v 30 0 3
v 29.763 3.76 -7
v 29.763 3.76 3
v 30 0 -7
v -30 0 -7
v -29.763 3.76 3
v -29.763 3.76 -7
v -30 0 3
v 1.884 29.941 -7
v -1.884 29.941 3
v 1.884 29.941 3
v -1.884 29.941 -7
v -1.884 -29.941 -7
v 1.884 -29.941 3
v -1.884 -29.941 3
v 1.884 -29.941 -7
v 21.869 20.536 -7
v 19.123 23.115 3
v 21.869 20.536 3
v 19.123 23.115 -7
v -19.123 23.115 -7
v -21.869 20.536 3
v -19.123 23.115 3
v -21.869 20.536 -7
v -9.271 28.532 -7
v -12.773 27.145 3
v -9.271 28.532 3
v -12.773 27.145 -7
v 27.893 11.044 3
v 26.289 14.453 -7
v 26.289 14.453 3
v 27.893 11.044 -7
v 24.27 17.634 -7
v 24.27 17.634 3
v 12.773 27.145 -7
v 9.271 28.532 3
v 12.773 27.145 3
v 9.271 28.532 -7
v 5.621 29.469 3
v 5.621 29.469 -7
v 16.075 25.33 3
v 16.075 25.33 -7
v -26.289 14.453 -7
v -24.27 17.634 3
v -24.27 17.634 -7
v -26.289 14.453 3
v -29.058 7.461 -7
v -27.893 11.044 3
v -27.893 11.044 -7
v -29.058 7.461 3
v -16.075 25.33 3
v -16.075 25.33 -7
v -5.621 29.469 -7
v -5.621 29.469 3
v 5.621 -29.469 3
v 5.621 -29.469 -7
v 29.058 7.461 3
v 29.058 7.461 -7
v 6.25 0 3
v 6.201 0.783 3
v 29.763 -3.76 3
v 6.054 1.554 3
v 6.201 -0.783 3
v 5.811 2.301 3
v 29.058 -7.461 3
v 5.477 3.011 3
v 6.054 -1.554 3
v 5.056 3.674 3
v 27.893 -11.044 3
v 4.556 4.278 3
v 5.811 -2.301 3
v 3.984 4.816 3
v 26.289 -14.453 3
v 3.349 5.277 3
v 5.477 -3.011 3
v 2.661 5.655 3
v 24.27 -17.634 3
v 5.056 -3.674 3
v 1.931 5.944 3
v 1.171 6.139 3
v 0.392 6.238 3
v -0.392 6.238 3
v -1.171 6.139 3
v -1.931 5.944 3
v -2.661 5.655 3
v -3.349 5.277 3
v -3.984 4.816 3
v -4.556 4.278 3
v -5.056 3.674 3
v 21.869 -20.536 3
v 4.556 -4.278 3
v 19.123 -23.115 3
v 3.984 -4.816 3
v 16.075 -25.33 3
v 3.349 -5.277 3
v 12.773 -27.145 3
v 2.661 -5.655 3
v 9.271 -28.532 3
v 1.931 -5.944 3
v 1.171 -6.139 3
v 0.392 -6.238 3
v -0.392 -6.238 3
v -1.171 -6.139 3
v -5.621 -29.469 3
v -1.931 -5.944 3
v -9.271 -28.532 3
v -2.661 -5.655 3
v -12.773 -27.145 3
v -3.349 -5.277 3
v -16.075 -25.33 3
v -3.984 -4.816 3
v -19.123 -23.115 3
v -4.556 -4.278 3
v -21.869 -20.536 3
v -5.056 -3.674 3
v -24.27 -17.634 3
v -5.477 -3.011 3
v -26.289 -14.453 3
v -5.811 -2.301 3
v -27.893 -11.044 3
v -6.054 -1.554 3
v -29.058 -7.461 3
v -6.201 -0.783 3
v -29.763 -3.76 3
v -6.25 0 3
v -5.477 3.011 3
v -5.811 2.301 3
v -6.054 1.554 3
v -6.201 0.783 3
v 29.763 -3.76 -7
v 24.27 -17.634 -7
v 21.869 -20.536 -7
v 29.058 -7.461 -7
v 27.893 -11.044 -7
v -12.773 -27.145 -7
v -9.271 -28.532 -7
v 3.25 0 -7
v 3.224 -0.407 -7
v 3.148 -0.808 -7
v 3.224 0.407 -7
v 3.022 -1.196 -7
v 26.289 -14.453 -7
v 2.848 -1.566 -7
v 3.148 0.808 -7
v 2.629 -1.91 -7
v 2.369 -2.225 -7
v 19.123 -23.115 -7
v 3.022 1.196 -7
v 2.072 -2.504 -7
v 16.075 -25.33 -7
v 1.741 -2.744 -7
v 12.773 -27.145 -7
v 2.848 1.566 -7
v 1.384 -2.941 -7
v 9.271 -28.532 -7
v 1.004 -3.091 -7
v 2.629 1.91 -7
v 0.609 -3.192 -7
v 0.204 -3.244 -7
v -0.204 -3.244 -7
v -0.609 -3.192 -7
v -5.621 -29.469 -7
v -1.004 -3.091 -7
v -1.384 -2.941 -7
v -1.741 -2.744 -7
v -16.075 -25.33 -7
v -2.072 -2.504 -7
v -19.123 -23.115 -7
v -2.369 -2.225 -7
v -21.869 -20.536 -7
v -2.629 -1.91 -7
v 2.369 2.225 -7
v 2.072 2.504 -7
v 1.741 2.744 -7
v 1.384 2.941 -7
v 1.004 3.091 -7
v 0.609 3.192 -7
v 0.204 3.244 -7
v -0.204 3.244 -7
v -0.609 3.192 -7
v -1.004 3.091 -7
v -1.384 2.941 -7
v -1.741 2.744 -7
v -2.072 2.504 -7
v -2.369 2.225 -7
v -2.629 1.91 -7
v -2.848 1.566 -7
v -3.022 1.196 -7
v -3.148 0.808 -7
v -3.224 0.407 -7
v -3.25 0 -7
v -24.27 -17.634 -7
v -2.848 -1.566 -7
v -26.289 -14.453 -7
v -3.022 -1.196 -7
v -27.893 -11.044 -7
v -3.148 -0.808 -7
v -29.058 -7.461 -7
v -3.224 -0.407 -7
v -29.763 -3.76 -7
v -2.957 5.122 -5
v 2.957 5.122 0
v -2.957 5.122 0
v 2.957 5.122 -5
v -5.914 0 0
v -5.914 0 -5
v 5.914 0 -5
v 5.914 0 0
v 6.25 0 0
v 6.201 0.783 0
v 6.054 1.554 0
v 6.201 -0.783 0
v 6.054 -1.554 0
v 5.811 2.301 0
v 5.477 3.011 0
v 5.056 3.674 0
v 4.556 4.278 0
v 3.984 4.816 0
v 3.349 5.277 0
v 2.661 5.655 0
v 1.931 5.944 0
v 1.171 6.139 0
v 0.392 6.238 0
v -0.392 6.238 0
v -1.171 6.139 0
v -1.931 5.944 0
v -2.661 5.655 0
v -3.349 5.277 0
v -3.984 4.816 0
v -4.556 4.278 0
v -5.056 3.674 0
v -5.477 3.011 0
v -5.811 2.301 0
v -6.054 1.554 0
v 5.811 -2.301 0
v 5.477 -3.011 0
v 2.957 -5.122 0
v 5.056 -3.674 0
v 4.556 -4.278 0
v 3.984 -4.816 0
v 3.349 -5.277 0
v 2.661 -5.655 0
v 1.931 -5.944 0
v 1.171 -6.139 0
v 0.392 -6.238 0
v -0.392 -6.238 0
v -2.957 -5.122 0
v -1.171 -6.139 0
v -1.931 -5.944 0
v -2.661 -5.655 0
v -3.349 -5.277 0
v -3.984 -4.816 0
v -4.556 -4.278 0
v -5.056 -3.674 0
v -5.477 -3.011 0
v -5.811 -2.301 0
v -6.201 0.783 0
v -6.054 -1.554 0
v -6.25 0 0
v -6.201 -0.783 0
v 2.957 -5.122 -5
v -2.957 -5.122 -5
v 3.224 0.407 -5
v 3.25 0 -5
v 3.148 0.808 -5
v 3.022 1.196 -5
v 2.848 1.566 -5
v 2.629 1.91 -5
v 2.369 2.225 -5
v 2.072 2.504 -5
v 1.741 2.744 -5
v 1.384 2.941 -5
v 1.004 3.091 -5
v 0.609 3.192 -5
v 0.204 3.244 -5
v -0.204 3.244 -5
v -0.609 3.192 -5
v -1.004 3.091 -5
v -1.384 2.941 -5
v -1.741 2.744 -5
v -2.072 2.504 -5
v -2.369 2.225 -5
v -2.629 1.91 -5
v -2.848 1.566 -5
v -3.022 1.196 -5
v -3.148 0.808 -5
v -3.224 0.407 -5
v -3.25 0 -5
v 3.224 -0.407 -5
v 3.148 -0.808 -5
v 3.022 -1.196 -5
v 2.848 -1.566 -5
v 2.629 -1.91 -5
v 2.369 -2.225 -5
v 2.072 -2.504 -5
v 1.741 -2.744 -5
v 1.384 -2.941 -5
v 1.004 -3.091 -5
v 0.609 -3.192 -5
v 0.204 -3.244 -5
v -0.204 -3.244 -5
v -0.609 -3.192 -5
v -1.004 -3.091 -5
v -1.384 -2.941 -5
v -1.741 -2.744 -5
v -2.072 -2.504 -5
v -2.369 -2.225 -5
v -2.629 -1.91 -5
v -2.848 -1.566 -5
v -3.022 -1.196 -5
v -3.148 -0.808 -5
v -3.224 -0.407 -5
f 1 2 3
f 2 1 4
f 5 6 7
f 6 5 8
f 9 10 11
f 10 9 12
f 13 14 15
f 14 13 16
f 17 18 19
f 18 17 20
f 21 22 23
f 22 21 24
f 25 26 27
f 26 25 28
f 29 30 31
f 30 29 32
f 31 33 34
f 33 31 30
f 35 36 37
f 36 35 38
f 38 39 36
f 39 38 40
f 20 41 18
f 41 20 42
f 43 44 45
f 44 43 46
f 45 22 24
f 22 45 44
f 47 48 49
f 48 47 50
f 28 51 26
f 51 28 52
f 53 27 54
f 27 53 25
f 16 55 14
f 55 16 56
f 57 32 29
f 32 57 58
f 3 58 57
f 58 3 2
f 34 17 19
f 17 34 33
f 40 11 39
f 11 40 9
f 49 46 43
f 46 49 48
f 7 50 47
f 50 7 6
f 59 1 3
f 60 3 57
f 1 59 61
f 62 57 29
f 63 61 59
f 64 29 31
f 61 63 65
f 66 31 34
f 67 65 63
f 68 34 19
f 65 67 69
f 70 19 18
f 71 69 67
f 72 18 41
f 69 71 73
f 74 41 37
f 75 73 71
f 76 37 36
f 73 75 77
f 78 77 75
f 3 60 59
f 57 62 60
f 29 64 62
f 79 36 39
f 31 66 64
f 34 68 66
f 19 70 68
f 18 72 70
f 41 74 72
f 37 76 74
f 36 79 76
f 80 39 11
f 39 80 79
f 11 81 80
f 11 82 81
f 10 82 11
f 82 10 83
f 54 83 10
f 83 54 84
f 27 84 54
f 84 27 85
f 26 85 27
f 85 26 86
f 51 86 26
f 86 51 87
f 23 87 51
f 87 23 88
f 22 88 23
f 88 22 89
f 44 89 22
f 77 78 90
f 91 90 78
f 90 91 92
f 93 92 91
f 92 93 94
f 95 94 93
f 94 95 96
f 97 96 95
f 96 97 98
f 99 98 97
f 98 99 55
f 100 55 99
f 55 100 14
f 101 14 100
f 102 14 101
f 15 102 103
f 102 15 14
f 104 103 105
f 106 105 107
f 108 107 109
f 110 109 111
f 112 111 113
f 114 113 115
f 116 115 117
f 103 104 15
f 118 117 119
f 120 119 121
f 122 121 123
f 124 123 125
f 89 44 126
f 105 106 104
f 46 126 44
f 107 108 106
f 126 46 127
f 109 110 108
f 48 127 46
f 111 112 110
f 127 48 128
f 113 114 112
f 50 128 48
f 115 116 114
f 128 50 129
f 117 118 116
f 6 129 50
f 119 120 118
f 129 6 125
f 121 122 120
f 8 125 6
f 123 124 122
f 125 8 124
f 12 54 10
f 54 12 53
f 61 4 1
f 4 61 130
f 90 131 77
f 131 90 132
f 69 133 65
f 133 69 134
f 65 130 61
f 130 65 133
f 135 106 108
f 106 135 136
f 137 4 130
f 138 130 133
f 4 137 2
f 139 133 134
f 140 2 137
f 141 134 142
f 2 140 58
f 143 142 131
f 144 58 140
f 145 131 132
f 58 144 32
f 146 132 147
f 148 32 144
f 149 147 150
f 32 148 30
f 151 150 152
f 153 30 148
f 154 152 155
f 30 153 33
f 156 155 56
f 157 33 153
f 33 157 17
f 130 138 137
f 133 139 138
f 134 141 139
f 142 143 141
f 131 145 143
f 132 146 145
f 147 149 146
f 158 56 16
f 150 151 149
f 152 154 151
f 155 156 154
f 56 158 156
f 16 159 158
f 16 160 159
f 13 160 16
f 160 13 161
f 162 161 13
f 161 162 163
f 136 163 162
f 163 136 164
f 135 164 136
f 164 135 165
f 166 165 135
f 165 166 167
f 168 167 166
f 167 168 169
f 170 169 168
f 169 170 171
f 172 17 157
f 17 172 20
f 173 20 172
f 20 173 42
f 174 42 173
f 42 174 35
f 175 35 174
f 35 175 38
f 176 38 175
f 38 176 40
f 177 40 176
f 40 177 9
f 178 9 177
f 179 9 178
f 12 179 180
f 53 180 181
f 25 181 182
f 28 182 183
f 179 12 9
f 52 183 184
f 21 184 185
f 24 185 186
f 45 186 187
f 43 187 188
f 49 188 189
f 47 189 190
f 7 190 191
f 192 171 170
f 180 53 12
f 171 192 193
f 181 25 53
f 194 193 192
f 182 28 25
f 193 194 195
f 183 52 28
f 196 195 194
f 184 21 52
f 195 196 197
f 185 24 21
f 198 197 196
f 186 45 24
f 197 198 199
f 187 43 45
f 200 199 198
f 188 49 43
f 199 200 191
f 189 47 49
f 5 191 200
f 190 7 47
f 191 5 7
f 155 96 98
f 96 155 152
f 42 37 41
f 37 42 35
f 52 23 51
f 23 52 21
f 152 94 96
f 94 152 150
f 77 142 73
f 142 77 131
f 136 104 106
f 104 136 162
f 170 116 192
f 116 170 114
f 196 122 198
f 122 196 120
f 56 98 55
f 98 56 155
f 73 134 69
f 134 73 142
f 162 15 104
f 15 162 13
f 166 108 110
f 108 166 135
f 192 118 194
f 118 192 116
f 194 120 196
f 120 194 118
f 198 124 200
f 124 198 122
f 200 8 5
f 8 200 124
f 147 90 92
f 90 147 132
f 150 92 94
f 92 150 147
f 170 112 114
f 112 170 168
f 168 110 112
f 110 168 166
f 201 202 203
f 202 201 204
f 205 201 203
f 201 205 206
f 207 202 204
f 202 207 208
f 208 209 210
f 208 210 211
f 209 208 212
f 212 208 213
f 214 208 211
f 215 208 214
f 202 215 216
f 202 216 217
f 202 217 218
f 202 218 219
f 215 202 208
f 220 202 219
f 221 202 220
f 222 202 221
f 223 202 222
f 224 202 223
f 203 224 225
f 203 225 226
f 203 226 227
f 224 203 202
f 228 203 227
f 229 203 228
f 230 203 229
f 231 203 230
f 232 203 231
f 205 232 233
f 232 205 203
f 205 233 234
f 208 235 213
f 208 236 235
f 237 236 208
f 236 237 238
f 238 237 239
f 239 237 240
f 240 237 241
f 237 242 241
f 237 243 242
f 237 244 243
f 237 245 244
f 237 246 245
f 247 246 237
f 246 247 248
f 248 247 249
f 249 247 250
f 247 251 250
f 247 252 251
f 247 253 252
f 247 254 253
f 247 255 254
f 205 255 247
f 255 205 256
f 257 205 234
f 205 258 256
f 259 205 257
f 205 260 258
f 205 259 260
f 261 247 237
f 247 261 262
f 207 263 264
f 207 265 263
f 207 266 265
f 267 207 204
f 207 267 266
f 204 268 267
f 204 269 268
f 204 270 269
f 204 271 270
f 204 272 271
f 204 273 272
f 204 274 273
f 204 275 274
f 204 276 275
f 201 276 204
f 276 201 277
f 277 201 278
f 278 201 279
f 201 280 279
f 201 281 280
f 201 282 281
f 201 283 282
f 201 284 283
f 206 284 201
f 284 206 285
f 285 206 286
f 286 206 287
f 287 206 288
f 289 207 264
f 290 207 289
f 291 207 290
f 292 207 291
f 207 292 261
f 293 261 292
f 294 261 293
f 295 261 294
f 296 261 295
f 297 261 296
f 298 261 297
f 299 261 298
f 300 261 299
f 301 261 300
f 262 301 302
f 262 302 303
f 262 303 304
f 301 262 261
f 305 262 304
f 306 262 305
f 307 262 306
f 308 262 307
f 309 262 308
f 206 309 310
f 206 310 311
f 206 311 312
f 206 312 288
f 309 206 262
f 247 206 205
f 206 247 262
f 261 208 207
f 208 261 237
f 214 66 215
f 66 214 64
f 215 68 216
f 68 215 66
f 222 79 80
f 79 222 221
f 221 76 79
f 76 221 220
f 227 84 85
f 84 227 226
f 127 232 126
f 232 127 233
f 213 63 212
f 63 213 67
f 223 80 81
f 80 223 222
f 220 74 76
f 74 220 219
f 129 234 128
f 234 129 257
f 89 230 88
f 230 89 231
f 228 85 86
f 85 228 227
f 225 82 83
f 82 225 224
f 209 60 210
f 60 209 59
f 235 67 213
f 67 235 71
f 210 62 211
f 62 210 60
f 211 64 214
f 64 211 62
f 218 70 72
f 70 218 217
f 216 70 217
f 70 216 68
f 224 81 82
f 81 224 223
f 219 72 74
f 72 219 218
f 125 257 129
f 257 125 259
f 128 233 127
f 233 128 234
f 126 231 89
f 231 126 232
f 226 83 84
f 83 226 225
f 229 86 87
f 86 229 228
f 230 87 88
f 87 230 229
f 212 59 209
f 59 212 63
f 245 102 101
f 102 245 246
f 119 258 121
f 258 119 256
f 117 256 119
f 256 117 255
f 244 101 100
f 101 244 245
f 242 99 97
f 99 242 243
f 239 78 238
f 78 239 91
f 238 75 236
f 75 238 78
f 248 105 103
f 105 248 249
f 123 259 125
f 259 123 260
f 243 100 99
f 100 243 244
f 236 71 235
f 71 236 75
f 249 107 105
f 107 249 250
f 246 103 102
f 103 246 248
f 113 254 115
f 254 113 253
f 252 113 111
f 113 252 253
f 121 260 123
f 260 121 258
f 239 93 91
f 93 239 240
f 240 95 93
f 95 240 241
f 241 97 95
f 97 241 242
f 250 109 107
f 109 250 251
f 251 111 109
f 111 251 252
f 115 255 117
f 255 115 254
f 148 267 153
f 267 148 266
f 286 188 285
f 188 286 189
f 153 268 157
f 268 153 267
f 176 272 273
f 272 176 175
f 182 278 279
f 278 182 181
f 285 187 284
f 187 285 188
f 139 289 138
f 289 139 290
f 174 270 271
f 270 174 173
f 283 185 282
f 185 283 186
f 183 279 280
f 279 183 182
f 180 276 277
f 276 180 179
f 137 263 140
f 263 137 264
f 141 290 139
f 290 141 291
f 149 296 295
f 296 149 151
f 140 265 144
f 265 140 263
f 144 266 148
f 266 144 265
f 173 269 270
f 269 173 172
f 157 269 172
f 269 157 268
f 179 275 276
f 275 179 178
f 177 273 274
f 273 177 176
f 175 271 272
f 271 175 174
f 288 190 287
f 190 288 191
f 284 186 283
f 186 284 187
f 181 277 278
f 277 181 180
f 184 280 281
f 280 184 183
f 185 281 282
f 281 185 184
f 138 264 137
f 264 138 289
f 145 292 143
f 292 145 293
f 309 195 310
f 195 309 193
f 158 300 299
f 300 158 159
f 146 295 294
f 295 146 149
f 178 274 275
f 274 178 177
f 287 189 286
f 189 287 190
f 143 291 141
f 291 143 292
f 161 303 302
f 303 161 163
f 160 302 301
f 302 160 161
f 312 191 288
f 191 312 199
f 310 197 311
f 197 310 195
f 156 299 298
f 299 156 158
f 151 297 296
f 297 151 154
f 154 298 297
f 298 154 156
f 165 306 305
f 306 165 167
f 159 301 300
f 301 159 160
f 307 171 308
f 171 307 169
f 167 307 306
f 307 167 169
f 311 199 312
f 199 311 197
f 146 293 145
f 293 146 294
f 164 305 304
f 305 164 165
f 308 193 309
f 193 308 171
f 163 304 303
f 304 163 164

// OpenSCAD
$fn = 50;

difference() {
	union() {
		translate(v = [0, 0, -7.0]) {
			cylinder(h = 10.0, r = 30.0);
		}
		#translate(v = [0, 0, -8.5]) {
			cylinder(h = 8.5, r = 2.875);
		}
	}
	union() {
		translate(v = [0, 0, 0]) {
			rotate(a = [0, 0, 0]) {
				difference() {
					union() {
						translate(v = [0, 0, -5]) {
							linear_extrude(height = 5) {
								polygon(points = [[5.914249999999999, 0.0], [2.957125, 5.1218907443321156], [-2.9571249999999982, 5.1218907443321156], [-5.914249999999999, 7.242867331857232e-16], [-2.9571250000000022, -5.121890744332115], [2.9571249999999956, -5.121890744332118]]);
							}
						}
					}
					union();
				}
			}
		}
		#cylinder(h = 3, r = 6.25);
		#translate(v = [0, 0, -100.0]) {
			cylinder(h = 200, r = 3.25);
		}
	}
}
